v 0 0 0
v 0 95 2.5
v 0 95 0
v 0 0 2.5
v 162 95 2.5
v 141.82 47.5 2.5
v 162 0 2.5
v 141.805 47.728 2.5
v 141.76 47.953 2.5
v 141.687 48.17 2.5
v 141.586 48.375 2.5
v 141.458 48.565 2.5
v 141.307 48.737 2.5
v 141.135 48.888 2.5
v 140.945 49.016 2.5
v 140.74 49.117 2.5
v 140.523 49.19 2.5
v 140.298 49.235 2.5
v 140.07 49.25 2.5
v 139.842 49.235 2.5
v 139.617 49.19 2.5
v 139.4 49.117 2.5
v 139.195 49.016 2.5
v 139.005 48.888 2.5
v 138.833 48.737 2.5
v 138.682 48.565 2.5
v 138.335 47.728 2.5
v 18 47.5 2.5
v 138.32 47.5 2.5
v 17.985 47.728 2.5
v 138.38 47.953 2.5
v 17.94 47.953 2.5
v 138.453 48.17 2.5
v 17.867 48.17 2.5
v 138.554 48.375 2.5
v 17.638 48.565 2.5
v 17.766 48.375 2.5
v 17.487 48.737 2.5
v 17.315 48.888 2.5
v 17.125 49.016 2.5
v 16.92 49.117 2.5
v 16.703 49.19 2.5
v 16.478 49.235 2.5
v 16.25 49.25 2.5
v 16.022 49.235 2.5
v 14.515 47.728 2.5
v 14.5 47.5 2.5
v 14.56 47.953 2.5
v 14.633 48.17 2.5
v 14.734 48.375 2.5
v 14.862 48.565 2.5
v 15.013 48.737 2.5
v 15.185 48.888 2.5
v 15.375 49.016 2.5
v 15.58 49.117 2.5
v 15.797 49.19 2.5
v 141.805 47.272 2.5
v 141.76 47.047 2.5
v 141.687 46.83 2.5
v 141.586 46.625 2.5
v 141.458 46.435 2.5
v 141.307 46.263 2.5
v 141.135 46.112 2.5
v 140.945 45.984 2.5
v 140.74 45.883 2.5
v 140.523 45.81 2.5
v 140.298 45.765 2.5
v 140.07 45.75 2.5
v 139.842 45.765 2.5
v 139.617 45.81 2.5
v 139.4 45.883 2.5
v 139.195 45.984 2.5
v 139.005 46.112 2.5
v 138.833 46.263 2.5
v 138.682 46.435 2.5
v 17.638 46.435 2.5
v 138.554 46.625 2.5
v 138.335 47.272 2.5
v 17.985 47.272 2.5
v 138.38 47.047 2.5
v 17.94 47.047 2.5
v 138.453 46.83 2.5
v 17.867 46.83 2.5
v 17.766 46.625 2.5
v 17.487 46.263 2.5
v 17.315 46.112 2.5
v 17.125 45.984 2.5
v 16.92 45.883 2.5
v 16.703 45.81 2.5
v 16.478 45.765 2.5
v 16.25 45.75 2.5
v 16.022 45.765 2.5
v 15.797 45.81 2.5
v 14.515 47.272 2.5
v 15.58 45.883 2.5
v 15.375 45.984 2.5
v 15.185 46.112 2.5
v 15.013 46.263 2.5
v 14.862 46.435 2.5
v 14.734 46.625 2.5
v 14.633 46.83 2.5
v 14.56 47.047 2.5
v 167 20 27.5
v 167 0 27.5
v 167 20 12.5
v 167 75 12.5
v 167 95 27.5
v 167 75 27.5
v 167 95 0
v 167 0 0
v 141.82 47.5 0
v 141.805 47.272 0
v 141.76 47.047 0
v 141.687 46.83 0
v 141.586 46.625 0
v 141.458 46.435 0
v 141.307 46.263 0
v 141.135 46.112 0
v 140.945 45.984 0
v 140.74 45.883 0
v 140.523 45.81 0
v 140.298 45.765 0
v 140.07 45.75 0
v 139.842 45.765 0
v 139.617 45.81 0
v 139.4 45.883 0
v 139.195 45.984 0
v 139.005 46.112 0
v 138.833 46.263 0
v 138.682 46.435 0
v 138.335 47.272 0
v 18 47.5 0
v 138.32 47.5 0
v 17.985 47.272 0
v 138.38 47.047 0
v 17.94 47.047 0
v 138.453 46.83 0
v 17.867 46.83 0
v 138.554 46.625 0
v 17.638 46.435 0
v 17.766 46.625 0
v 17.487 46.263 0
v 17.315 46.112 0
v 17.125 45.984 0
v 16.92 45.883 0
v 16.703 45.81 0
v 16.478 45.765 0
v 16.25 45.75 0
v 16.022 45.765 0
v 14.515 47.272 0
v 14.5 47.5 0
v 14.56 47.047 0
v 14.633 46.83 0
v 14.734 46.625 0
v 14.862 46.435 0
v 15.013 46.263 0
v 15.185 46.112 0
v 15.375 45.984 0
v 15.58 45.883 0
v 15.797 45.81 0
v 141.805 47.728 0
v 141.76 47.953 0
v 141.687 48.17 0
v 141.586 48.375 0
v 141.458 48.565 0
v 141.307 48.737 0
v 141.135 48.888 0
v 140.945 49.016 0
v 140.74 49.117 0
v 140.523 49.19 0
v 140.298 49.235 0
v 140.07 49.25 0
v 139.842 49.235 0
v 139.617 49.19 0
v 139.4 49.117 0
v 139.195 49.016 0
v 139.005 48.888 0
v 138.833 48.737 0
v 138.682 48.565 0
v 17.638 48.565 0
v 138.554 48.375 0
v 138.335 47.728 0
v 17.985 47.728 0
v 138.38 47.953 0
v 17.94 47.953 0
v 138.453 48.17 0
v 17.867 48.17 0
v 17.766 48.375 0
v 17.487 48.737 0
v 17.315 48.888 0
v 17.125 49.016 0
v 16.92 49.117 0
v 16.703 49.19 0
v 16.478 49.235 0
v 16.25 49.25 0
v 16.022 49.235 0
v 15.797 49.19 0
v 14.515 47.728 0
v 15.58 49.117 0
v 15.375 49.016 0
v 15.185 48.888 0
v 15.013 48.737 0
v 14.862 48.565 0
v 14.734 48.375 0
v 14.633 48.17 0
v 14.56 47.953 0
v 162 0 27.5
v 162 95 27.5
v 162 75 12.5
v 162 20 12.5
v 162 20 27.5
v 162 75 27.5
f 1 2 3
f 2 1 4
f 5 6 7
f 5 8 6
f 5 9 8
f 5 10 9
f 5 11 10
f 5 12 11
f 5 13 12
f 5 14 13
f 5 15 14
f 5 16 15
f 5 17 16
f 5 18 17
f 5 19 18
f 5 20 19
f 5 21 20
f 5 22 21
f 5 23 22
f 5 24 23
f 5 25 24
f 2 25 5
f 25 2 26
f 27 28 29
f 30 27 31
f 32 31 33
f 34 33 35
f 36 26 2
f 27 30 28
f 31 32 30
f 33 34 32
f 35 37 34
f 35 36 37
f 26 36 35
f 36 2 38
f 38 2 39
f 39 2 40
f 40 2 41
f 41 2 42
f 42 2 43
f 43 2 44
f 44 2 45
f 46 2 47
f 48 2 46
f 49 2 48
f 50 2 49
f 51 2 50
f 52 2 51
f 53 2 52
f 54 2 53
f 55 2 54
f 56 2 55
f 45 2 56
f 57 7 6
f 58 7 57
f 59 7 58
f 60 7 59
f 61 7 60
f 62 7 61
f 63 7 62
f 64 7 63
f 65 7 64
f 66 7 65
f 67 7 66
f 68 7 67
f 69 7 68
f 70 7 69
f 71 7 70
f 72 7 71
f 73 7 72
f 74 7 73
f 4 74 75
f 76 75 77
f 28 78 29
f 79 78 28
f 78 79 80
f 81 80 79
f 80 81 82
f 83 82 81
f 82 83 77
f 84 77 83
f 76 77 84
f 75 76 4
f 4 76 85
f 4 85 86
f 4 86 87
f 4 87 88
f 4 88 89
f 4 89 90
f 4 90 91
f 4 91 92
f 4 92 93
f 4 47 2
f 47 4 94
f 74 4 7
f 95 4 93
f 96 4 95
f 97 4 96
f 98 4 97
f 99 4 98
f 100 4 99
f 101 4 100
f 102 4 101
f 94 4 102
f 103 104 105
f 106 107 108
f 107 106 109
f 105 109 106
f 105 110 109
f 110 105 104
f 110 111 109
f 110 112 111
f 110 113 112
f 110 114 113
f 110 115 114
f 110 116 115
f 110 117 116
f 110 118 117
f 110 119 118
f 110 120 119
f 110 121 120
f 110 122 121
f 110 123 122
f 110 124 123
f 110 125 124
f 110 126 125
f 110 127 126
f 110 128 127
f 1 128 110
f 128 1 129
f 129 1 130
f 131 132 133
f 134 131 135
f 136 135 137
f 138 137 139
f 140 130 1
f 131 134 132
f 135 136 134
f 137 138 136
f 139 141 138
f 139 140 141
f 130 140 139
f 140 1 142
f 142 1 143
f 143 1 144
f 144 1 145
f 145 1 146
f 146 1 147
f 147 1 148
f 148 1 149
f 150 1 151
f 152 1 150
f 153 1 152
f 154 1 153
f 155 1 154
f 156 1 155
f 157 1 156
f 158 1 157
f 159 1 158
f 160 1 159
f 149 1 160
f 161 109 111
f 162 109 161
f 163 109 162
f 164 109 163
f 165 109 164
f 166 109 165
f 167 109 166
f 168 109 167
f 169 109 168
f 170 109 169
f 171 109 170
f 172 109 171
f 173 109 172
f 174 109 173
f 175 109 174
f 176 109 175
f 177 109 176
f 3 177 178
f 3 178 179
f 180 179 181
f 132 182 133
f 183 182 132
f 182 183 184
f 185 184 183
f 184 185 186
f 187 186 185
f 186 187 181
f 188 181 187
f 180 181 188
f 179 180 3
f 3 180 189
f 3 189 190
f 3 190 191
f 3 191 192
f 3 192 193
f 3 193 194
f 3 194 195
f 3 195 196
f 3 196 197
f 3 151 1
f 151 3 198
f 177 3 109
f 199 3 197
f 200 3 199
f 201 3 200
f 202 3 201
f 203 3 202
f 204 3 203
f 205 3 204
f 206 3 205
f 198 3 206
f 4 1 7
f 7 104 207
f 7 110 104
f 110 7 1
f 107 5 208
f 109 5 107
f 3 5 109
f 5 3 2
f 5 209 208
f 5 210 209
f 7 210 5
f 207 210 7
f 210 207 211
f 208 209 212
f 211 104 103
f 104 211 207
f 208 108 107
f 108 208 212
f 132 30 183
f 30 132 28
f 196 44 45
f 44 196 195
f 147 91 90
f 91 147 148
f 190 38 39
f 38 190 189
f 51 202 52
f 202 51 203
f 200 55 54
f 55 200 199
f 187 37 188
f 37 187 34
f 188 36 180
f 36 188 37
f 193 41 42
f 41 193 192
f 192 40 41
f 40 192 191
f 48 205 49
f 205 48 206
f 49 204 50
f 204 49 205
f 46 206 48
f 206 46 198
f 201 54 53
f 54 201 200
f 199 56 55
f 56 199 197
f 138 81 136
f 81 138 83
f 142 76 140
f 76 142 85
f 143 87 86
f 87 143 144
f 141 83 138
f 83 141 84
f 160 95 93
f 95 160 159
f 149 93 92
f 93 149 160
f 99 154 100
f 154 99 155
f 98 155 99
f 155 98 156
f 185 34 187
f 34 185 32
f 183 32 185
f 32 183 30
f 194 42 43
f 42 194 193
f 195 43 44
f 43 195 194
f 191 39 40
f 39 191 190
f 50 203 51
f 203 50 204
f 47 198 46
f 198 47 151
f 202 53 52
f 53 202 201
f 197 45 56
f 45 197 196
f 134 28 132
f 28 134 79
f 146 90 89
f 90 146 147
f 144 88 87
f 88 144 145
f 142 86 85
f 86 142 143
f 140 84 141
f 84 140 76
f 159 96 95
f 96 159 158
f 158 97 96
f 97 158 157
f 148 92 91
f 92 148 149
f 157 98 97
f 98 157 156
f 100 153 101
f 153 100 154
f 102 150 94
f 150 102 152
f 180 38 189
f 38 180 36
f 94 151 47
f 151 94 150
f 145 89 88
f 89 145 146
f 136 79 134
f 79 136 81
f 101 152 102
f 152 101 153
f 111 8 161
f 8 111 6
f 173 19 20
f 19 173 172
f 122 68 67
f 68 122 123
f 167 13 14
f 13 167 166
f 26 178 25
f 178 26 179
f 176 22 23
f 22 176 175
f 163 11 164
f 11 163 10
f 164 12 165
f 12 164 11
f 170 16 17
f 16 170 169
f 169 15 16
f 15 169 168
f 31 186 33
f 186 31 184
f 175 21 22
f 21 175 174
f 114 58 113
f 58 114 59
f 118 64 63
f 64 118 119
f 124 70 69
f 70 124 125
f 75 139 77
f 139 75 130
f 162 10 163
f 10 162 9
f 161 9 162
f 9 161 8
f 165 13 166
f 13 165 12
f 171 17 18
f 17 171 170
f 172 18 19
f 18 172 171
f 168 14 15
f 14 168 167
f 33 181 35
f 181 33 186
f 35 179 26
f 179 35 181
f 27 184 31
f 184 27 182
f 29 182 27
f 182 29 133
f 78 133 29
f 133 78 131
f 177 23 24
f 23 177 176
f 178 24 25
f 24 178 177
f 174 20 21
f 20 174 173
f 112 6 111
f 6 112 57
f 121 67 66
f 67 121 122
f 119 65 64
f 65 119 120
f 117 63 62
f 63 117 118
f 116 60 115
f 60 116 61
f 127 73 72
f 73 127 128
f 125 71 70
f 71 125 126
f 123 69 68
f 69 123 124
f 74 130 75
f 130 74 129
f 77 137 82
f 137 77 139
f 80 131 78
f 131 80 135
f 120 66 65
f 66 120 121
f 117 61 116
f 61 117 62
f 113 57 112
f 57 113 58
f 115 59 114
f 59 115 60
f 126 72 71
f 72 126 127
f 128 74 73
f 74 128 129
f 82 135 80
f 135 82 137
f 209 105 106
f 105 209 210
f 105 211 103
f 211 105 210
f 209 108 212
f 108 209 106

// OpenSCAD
$fn=48;

totalX=15+2.5+10+(107/2)+(162/2)+5;
totalY=95;
totalZ=2.5;
screwHoleSpacing=101.6+22.22;

difference() {
	union() {
		cube([totalX, totalY, totalZ]);
		translate([totalX-5, 0, totalZ]) cube([5, totalY, 25]);
	}
	translate([(15+2.5/2), totalY/2, -0.1]) cylinder(10, d=3.5);
	translate([(15+2.5/2)+screwHoleSpacing, totalY/2, -0.1]) cylinder(10, d=3.5);
	translate([totalX-6, 20, totalZ+10]) cube([10, totalY-20*2, 20]);
}
